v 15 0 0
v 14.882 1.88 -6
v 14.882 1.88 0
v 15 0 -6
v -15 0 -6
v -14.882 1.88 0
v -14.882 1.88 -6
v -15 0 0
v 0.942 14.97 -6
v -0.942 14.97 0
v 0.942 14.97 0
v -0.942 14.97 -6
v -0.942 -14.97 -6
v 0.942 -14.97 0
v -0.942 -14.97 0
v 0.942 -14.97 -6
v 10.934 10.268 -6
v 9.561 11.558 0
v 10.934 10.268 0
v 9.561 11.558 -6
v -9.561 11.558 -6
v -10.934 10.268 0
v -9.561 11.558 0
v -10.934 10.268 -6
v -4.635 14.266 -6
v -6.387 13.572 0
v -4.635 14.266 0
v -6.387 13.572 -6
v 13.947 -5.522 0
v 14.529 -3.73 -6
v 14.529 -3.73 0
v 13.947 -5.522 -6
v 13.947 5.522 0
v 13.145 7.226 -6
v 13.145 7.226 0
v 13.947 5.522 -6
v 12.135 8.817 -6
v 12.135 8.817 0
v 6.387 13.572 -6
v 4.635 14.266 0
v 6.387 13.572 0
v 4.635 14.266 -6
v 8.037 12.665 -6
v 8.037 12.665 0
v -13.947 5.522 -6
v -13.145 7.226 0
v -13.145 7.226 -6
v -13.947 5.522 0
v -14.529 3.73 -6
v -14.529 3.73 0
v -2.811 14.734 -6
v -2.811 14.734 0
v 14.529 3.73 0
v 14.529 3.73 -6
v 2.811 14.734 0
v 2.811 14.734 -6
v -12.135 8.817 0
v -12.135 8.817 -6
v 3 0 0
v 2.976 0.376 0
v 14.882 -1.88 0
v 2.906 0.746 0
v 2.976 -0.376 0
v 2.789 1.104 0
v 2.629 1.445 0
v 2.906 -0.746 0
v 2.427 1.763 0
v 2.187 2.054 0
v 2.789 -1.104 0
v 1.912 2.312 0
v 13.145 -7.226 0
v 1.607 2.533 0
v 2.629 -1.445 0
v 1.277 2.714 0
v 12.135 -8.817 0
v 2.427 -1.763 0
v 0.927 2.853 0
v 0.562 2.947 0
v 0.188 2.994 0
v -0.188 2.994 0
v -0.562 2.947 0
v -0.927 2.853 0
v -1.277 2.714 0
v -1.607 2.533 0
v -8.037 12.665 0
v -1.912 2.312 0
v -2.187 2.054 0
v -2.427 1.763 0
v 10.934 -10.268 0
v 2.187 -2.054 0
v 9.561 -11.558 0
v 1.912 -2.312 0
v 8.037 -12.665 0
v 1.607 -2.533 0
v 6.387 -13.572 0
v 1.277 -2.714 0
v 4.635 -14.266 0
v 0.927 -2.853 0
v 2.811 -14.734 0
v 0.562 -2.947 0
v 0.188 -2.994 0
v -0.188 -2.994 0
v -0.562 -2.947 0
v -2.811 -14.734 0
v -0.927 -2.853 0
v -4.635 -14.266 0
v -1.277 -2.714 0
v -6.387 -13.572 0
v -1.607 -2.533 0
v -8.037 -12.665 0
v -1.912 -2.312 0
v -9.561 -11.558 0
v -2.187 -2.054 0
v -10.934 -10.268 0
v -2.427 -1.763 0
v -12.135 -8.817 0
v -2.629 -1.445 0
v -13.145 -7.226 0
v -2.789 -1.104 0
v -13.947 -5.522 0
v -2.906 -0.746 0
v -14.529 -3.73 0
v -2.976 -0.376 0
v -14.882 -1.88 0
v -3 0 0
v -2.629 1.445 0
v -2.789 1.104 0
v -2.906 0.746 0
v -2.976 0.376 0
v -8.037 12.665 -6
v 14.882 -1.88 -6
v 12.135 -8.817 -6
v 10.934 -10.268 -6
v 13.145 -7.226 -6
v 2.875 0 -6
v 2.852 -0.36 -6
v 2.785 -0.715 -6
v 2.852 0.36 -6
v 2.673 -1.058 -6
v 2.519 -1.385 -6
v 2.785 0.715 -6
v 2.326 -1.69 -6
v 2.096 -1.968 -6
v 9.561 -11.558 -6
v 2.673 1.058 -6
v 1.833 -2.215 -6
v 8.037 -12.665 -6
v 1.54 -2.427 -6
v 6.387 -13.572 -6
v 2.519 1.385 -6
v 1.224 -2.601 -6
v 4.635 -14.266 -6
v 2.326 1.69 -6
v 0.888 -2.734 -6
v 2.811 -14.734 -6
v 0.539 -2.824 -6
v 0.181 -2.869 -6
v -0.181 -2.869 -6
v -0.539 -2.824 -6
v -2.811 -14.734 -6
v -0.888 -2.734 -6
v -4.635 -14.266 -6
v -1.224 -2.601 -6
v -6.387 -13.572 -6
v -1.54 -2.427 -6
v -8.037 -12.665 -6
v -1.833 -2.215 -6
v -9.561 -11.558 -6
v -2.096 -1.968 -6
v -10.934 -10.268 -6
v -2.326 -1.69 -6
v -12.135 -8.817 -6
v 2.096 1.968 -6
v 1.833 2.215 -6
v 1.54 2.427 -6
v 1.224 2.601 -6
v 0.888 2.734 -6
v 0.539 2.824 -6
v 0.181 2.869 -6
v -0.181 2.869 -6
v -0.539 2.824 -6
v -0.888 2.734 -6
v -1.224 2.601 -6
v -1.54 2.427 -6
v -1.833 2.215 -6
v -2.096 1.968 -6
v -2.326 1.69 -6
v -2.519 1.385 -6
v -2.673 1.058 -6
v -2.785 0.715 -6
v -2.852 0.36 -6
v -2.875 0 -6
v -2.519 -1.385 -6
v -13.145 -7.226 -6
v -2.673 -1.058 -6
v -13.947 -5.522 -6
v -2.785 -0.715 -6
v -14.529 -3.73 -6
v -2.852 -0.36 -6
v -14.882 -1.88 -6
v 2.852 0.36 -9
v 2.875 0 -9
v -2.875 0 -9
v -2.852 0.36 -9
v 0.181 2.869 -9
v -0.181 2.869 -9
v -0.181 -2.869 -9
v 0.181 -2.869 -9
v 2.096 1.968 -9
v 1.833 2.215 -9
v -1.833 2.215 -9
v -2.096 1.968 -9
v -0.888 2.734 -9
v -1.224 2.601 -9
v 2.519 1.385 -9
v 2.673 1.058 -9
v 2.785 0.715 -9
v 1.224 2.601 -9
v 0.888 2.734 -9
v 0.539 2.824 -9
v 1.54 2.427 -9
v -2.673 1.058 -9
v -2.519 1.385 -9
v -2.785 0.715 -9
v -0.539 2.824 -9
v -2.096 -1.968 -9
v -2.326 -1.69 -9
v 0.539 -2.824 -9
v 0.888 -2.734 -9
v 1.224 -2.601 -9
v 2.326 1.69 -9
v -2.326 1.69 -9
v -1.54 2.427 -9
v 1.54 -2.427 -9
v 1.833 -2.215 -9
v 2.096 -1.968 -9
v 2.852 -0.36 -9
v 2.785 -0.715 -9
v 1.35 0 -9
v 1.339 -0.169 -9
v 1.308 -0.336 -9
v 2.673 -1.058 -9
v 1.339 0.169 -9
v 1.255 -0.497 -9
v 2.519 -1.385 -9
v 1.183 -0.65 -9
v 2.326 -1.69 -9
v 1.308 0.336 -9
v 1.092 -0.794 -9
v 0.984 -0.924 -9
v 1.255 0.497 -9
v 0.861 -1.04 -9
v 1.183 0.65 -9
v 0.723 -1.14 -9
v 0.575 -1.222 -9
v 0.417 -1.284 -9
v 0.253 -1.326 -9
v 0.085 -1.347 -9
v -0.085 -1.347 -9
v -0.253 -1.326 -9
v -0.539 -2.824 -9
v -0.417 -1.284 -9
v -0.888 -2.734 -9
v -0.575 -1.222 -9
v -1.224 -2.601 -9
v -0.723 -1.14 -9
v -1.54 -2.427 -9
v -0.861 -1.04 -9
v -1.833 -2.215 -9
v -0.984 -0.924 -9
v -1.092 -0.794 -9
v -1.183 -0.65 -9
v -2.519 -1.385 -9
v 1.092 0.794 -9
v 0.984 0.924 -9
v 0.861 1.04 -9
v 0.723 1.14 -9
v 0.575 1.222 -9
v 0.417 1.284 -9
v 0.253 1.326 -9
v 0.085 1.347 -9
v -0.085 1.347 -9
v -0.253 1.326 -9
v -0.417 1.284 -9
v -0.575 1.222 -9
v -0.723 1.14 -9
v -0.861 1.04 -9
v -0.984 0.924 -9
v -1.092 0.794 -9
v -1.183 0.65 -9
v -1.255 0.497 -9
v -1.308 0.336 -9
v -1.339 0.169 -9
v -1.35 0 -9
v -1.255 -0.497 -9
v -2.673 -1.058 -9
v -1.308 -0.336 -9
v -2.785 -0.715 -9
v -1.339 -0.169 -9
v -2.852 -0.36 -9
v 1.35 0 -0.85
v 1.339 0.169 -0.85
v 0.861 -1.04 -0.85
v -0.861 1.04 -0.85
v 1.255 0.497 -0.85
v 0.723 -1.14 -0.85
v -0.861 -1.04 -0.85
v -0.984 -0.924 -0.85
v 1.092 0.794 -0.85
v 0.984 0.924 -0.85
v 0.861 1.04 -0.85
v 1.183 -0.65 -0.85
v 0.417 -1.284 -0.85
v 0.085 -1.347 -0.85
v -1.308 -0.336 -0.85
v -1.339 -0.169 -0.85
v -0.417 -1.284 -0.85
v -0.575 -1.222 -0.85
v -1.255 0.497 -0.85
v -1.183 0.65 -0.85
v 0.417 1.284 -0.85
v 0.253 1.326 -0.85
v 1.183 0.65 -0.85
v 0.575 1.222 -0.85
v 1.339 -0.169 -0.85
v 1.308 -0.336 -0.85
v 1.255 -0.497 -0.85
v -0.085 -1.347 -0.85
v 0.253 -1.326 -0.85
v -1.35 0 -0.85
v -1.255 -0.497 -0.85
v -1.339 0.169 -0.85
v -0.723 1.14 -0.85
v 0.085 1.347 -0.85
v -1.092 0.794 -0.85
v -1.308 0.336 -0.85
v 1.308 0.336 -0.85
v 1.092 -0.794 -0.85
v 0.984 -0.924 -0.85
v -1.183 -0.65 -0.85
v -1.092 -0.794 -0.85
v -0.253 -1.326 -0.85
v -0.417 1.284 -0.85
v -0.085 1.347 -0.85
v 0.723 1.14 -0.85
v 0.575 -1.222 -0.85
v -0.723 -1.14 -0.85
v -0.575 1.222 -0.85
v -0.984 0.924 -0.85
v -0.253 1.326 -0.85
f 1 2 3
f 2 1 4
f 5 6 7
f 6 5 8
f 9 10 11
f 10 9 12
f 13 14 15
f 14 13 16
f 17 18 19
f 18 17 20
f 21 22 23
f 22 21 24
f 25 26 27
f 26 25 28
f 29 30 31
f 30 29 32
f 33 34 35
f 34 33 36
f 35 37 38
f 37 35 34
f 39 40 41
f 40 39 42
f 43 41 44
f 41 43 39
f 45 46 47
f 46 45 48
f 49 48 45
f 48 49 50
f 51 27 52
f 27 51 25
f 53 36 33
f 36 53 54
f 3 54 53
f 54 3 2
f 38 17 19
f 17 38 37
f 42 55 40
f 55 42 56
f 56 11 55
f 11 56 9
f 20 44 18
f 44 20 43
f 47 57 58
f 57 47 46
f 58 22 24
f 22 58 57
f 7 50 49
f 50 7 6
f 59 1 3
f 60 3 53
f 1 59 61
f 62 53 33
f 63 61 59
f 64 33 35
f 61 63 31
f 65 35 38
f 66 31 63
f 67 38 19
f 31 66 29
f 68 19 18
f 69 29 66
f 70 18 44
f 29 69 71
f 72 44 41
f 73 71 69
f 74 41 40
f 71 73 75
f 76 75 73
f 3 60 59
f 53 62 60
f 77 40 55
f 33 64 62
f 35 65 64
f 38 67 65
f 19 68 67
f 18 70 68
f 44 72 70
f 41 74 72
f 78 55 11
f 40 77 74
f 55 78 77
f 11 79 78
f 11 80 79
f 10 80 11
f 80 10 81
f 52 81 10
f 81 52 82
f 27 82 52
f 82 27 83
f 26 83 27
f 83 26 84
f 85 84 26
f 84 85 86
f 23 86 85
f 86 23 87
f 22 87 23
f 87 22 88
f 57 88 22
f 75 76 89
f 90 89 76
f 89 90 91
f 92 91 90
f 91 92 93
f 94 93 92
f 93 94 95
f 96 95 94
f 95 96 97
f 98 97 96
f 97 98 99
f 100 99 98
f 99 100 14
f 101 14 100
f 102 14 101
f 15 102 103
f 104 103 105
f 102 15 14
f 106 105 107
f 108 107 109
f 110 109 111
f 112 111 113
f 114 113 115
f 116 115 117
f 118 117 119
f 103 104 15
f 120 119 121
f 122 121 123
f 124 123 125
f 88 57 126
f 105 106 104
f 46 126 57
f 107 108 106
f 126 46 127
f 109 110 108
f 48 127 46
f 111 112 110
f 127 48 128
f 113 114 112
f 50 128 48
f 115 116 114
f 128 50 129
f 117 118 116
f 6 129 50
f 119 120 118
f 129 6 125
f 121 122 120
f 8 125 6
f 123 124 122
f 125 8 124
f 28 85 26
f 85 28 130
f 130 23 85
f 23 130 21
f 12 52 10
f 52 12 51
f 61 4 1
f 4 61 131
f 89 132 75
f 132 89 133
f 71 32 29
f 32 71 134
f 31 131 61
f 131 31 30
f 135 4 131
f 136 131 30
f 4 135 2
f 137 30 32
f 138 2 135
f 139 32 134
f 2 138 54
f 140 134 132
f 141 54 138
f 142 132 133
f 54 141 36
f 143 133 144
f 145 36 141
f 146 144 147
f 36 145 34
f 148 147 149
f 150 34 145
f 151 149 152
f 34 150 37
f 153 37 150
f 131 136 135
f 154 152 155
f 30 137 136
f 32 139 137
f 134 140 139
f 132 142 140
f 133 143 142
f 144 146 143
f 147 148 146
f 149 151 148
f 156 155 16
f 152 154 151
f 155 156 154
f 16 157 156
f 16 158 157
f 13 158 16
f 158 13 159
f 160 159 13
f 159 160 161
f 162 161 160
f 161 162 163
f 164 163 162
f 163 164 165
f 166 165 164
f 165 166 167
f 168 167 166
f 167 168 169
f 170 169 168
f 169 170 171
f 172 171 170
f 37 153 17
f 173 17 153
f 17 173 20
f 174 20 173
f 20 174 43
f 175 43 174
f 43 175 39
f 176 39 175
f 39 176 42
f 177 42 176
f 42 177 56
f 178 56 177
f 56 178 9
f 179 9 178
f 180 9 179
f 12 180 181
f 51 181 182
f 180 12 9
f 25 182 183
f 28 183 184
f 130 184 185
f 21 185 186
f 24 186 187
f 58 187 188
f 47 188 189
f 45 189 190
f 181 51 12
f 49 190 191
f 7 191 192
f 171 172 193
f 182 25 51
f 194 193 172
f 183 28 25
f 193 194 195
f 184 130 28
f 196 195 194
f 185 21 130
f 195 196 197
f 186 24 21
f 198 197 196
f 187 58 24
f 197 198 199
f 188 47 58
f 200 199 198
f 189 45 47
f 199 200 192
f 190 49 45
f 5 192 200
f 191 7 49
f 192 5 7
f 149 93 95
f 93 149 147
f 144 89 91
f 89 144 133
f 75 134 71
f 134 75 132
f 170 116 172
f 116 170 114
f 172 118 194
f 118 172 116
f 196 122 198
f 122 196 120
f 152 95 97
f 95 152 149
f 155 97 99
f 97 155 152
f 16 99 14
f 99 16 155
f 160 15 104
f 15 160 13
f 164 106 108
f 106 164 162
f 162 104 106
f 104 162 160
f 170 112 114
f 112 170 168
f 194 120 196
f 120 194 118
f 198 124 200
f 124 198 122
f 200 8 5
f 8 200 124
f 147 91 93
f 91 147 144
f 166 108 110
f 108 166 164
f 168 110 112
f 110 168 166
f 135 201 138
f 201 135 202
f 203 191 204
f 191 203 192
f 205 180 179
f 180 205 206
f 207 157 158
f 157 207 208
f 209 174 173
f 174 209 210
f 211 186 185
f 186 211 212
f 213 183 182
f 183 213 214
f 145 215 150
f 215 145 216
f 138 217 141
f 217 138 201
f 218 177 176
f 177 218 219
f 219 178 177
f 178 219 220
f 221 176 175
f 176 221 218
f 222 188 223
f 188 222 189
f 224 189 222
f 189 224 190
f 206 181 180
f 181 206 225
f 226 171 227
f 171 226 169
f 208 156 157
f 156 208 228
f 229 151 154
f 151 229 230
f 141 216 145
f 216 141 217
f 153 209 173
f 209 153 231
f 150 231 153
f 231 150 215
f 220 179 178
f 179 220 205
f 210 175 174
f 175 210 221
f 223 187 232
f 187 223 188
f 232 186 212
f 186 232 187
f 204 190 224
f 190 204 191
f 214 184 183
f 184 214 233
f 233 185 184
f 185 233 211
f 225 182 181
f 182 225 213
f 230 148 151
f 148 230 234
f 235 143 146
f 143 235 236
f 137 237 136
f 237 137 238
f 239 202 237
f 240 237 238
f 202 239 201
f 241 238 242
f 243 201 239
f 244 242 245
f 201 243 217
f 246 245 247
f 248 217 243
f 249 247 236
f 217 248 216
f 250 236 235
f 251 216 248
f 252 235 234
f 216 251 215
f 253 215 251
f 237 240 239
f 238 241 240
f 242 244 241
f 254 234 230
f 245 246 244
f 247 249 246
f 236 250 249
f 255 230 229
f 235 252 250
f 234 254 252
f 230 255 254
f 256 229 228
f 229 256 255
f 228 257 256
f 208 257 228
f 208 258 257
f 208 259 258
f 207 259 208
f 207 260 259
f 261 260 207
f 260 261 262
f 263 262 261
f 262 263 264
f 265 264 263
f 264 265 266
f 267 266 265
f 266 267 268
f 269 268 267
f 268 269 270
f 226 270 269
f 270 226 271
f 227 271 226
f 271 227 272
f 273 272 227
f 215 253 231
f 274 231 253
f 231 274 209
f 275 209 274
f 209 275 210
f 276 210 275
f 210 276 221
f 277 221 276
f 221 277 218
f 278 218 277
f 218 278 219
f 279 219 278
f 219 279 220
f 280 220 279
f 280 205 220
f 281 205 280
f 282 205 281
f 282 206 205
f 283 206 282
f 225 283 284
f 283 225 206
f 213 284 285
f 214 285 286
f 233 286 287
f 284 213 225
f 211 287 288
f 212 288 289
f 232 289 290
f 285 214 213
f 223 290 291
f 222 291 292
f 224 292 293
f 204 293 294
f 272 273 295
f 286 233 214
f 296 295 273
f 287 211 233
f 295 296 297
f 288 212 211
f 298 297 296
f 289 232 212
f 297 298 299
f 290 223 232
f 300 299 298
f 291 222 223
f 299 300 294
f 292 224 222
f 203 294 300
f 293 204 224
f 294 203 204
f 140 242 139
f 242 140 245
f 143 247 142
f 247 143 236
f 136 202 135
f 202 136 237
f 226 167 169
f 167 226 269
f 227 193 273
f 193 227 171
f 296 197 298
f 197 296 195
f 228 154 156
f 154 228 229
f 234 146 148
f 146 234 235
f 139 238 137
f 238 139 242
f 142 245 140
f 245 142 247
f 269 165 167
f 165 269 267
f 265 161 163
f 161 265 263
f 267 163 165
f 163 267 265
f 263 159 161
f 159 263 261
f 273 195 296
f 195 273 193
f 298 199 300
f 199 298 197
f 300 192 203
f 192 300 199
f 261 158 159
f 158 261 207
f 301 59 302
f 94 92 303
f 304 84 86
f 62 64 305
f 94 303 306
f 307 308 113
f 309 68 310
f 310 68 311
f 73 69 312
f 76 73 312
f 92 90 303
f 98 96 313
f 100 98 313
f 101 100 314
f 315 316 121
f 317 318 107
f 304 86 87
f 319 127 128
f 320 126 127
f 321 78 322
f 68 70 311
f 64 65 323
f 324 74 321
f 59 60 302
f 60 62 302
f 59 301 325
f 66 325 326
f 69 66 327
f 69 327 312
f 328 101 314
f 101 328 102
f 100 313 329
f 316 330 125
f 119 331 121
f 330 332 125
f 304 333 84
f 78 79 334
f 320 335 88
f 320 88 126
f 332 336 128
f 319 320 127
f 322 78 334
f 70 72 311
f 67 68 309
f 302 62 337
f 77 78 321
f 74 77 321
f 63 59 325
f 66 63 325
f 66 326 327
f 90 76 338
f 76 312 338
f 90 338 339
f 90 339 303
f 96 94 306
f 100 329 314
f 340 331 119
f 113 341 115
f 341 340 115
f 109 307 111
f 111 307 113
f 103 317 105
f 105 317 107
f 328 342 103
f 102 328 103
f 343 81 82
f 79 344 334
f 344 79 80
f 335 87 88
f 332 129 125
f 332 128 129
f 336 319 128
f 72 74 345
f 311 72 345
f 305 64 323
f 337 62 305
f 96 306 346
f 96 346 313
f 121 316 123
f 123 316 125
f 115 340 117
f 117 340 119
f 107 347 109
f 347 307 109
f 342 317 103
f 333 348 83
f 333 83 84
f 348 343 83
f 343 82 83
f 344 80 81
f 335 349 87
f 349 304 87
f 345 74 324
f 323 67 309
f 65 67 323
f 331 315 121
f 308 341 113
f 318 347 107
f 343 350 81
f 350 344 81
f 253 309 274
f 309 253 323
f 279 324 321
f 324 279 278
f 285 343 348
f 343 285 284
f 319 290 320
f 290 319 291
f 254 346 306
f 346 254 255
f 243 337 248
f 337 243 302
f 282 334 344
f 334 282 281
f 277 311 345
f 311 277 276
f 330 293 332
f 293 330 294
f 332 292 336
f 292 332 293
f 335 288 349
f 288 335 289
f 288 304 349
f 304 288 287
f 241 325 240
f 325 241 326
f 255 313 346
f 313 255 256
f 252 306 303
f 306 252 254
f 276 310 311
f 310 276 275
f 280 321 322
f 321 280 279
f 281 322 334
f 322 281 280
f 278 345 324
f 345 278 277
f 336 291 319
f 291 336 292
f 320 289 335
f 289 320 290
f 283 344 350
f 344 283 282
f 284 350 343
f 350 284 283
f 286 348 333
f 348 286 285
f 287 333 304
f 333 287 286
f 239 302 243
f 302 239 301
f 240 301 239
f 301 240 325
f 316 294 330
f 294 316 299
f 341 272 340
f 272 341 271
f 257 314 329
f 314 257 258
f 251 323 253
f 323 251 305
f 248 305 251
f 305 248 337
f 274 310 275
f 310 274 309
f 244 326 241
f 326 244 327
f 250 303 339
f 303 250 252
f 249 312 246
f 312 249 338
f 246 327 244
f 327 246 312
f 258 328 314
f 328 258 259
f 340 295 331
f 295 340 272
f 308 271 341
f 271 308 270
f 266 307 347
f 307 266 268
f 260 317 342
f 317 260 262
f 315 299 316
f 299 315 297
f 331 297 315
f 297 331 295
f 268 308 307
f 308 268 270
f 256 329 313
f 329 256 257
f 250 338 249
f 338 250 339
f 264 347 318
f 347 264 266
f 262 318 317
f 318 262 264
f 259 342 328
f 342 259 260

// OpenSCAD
$fn = 50;


difference() {
	union() {
		translate(v = [0, 0, -6.0000000000]) {
			cylinder(h = 6, r = 15.0000000000);
		}
		translate(v = [0, 0, -9.0000000000]) {
			cylinder(h = 9, r = 2.8750000000);
		}
	}
	union() {
		translate(v = [0, 0, 0]) {
			rotate(a = [0, 0, 0]) {
				difference() {
					union() {
						translate(v = [0, 0, -9.0000000000]) {
							cylinder(h = 9, r = 1.0000000000);
						}
						translate(v = [0, 0, -0.8500000000]) {
							cylinder(h = 0.8500000000, r1 = 1.3500000000, r2 = 3.0000000000);
						}
						translate(v = [0, 0, -9.0000000000]) {
							cylinder(h = 9, r = 1.3500000000);
						}
						translate(v = [0, 0, -9.0000000000]) {
							cylinder(h = 9, r = 1.0000000000);
						}
					}
					union();
				}
			}
		}
	}
}
